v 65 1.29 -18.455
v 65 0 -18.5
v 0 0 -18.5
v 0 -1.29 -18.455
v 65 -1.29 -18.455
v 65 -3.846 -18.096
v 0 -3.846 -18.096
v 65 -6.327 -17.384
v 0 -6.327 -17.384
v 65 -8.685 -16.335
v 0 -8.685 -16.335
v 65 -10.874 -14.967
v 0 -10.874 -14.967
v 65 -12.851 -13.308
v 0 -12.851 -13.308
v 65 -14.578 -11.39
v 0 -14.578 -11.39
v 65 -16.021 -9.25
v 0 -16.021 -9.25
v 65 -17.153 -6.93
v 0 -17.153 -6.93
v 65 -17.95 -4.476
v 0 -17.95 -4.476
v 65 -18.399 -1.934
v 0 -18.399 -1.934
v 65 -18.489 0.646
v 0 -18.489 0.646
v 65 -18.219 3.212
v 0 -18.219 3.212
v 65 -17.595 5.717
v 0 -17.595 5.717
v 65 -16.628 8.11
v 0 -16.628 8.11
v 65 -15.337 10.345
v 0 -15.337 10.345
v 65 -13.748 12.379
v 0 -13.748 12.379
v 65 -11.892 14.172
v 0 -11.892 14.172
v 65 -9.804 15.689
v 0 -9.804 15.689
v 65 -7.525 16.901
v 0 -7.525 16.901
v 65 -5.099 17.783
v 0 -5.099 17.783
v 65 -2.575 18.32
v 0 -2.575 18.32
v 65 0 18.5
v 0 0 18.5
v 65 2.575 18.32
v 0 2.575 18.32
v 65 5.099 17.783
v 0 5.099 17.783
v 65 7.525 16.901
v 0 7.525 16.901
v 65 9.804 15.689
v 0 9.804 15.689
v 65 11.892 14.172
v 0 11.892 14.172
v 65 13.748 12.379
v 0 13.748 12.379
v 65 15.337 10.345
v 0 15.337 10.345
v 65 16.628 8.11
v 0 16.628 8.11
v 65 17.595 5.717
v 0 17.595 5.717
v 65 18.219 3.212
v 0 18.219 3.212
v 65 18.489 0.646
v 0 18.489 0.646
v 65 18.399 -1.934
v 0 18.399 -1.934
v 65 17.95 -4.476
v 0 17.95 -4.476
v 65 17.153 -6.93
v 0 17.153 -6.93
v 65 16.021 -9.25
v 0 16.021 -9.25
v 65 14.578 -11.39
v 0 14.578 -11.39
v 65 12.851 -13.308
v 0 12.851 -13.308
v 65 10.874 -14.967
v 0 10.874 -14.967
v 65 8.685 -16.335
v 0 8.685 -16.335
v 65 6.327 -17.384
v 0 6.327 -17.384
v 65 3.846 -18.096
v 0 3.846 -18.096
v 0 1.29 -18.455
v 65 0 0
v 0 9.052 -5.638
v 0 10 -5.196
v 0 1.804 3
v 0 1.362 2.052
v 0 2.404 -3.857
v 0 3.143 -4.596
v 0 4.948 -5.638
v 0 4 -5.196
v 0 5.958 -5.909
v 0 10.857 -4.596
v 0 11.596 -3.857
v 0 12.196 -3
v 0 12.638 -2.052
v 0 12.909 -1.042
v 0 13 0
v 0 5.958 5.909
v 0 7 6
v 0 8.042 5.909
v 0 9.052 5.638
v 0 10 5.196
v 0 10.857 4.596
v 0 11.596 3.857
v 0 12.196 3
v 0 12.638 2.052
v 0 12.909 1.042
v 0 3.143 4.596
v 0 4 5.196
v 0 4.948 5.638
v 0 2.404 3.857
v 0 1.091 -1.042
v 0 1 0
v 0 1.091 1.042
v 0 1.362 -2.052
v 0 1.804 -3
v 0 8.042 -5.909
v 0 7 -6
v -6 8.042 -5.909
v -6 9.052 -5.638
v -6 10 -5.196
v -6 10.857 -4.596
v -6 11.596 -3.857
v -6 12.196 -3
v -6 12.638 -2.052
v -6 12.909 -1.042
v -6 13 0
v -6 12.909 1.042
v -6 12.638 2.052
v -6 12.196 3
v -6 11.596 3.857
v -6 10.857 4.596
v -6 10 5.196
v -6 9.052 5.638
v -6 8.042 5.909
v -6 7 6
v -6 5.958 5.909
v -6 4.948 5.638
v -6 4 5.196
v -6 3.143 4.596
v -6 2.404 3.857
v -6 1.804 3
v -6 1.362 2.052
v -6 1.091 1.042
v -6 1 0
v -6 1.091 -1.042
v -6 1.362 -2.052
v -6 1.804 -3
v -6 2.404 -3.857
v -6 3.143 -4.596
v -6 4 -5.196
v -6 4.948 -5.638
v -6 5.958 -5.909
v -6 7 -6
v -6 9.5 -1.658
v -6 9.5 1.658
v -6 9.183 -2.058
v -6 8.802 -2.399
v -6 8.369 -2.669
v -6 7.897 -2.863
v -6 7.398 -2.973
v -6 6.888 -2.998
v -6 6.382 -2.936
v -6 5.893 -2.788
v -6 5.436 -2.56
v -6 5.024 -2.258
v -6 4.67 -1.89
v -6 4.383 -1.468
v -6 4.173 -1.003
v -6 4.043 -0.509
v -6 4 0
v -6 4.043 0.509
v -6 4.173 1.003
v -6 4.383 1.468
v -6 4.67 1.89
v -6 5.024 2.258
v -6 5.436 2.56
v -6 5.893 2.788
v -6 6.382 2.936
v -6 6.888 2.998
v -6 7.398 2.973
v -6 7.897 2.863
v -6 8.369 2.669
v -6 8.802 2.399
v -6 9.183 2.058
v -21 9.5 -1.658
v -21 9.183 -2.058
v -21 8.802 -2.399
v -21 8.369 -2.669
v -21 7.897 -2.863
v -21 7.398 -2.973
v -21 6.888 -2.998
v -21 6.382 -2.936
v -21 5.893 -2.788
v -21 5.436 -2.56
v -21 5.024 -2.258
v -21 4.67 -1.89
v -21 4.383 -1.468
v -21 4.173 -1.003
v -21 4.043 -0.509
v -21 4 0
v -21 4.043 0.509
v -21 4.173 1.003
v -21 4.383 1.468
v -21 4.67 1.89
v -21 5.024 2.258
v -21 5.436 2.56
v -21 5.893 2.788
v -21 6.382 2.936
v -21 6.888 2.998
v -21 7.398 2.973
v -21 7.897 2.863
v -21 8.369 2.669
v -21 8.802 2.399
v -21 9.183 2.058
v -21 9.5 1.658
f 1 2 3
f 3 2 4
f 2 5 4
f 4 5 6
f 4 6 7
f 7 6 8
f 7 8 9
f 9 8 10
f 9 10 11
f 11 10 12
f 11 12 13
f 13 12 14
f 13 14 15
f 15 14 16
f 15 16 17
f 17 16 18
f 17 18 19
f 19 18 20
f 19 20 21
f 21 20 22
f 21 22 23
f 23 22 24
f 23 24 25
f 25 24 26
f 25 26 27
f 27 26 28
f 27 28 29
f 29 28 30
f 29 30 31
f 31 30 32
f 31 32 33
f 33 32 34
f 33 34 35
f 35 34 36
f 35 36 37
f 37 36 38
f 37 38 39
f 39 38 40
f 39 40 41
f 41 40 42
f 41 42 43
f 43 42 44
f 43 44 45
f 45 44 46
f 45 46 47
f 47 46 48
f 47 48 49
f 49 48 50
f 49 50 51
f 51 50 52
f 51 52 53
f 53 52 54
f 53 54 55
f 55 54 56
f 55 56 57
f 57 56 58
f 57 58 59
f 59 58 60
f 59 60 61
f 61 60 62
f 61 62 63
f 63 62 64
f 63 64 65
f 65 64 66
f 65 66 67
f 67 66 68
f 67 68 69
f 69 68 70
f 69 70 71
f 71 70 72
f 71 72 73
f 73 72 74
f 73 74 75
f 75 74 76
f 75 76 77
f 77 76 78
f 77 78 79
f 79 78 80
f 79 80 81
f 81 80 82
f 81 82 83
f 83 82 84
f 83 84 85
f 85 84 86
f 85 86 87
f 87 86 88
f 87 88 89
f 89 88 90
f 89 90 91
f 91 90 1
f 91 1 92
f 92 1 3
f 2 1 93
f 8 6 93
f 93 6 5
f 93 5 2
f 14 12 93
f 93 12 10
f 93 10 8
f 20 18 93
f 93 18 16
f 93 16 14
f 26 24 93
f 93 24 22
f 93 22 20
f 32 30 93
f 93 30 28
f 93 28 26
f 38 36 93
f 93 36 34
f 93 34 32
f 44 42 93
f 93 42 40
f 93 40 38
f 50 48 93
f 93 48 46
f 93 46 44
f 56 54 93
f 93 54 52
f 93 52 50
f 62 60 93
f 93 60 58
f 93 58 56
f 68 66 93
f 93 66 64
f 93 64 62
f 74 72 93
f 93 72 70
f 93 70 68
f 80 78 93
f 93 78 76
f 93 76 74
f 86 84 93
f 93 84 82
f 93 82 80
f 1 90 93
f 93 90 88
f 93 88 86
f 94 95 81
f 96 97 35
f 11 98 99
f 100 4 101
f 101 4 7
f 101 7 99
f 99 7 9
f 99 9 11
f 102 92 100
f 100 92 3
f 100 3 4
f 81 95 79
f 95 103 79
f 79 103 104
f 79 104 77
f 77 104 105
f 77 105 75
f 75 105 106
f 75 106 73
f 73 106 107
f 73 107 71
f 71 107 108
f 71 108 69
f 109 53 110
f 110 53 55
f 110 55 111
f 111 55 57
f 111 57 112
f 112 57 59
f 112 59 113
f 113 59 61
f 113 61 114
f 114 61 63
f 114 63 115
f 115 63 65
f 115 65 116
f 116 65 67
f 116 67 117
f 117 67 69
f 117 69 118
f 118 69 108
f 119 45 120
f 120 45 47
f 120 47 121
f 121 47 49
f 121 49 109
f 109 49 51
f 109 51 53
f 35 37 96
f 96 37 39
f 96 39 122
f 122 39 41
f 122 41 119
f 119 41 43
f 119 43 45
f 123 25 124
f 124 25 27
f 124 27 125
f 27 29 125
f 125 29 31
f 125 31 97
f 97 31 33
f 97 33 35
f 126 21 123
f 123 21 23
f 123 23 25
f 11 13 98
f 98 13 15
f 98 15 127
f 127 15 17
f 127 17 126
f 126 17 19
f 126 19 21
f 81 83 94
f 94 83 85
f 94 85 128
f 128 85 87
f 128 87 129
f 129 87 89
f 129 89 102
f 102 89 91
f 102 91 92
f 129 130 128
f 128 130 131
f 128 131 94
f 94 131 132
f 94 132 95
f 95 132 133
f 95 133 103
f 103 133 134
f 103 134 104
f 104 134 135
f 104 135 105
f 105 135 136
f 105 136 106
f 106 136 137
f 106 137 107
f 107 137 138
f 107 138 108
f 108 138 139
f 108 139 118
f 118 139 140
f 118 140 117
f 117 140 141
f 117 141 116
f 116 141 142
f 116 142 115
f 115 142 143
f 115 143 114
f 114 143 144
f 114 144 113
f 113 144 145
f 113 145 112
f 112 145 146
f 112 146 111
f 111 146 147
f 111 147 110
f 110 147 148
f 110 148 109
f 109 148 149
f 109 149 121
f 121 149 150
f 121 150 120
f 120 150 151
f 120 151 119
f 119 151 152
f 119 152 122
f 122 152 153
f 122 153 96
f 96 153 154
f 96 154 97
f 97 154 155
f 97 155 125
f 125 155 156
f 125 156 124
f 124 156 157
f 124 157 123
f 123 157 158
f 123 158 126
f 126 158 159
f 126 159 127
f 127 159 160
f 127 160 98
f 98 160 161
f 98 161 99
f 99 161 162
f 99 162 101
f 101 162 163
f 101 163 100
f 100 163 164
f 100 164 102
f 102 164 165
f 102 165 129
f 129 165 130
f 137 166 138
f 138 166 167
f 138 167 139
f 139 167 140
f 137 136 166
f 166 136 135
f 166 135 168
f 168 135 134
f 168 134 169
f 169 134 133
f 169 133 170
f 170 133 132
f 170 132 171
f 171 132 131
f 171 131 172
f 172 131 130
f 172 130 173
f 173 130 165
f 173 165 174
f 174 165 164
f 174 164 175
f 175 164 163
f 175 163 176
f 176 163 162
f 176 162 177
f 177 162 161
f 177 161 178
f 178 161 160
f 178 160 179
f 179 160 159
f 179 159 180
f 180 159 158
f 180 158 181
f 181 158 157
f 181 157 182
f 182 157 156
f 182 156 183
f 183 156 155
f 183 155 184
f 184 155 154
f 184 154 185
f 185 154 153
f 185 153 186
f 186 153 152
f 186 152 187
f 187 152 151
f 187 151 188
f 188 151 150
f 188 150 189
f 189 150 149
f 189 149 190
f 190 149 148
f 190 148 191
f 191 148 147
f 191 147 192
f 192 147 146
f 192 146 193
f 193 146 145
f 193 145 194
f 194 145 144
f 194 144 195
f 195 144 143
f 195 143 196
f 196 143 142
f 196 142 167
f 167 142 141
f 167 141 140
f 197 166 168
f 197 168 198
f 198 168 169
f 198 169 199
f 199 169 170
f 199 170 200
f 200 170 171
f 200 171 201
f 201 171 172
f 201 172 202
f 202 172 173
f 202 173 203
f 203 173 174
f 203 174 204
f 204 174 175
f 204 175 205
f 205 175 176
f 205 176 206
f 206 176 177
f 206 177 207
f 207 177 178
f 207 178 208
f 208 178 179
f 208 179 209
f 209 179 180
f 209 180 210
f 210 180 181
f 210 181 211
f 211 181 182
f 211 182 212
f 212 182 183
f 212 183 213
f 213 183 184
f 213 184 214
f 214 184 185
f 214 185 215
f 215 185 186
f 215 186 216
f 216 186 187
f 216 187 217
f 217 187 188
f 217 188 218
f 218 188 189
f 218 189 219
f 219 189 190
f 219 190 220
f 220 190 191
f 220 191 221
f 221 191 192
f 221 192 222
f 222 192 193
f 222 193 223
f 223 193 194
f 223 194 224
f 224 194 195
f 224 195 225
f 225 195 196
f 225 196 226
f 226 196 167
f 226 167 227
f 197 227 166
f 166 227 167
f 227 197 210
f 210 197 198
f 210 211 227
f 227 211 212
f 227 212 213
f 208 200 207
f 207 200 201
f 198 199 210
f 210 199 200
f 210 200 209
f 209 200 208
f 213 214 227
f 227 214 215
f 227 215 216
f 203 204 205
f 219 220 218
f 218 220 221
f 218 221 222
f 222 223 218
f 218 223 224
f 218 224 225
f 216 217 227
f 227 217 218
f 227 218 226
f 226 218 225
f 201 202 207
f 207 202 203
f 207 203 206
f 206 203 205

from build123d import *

# Parameters (mm, degrees)
SKIZZE1_R                       = 18.5
AUFSATZ_LINEAR_AUSTRAGEN1_DEPTH = 65
SKIZZE2_R                       = 6
AUFSATZ_LINEAR_AUSTRAGEN2_DEPTH = 6
AUFSATZ_LINEAR_AUSTRAGEN3_DEPTH = 15


with BuildPart() as part:
    # Skizze1 → Aufsatz-Linear austragen1 (new body)
    with BuildSketch(Plane(origin=(0, 0, 0), x_dir=(0, 0, -1), z_dir=(1, 0, 0))):
        Circle(SKIZZE1_R)
    extrude(amount=AUFSATZ_LINEAR_AUSTRAGEN1_DEPTH)

    # Skizze2 → Aufsatz-Linear austragen2 (add)
    with BuildSketch(Plane.ZY):
        with Locations((0, 7)):
            Circle(SKIZZE2_R)
    extrude(amount=AUFSATZ_LINEAR_AUSTRAGEN2_DEPTH)

    # Skizze3 → Aufsatz-Linear austragen3 (add)
    with BuildSketch(Plane.ZY.offset(6)):
        with BuildLine():
            Line((-1.658312395, 9.5), (1.658312395, 9.5))
            ThreePointArc((1.658312395, 9.5), (0, 4), (-1.658312395, 9.5))
        make_face()
    extrude(amount=AUFSATZ_LINEAR_AUSTRAGEN3_DEPTH)


solid = part.part
